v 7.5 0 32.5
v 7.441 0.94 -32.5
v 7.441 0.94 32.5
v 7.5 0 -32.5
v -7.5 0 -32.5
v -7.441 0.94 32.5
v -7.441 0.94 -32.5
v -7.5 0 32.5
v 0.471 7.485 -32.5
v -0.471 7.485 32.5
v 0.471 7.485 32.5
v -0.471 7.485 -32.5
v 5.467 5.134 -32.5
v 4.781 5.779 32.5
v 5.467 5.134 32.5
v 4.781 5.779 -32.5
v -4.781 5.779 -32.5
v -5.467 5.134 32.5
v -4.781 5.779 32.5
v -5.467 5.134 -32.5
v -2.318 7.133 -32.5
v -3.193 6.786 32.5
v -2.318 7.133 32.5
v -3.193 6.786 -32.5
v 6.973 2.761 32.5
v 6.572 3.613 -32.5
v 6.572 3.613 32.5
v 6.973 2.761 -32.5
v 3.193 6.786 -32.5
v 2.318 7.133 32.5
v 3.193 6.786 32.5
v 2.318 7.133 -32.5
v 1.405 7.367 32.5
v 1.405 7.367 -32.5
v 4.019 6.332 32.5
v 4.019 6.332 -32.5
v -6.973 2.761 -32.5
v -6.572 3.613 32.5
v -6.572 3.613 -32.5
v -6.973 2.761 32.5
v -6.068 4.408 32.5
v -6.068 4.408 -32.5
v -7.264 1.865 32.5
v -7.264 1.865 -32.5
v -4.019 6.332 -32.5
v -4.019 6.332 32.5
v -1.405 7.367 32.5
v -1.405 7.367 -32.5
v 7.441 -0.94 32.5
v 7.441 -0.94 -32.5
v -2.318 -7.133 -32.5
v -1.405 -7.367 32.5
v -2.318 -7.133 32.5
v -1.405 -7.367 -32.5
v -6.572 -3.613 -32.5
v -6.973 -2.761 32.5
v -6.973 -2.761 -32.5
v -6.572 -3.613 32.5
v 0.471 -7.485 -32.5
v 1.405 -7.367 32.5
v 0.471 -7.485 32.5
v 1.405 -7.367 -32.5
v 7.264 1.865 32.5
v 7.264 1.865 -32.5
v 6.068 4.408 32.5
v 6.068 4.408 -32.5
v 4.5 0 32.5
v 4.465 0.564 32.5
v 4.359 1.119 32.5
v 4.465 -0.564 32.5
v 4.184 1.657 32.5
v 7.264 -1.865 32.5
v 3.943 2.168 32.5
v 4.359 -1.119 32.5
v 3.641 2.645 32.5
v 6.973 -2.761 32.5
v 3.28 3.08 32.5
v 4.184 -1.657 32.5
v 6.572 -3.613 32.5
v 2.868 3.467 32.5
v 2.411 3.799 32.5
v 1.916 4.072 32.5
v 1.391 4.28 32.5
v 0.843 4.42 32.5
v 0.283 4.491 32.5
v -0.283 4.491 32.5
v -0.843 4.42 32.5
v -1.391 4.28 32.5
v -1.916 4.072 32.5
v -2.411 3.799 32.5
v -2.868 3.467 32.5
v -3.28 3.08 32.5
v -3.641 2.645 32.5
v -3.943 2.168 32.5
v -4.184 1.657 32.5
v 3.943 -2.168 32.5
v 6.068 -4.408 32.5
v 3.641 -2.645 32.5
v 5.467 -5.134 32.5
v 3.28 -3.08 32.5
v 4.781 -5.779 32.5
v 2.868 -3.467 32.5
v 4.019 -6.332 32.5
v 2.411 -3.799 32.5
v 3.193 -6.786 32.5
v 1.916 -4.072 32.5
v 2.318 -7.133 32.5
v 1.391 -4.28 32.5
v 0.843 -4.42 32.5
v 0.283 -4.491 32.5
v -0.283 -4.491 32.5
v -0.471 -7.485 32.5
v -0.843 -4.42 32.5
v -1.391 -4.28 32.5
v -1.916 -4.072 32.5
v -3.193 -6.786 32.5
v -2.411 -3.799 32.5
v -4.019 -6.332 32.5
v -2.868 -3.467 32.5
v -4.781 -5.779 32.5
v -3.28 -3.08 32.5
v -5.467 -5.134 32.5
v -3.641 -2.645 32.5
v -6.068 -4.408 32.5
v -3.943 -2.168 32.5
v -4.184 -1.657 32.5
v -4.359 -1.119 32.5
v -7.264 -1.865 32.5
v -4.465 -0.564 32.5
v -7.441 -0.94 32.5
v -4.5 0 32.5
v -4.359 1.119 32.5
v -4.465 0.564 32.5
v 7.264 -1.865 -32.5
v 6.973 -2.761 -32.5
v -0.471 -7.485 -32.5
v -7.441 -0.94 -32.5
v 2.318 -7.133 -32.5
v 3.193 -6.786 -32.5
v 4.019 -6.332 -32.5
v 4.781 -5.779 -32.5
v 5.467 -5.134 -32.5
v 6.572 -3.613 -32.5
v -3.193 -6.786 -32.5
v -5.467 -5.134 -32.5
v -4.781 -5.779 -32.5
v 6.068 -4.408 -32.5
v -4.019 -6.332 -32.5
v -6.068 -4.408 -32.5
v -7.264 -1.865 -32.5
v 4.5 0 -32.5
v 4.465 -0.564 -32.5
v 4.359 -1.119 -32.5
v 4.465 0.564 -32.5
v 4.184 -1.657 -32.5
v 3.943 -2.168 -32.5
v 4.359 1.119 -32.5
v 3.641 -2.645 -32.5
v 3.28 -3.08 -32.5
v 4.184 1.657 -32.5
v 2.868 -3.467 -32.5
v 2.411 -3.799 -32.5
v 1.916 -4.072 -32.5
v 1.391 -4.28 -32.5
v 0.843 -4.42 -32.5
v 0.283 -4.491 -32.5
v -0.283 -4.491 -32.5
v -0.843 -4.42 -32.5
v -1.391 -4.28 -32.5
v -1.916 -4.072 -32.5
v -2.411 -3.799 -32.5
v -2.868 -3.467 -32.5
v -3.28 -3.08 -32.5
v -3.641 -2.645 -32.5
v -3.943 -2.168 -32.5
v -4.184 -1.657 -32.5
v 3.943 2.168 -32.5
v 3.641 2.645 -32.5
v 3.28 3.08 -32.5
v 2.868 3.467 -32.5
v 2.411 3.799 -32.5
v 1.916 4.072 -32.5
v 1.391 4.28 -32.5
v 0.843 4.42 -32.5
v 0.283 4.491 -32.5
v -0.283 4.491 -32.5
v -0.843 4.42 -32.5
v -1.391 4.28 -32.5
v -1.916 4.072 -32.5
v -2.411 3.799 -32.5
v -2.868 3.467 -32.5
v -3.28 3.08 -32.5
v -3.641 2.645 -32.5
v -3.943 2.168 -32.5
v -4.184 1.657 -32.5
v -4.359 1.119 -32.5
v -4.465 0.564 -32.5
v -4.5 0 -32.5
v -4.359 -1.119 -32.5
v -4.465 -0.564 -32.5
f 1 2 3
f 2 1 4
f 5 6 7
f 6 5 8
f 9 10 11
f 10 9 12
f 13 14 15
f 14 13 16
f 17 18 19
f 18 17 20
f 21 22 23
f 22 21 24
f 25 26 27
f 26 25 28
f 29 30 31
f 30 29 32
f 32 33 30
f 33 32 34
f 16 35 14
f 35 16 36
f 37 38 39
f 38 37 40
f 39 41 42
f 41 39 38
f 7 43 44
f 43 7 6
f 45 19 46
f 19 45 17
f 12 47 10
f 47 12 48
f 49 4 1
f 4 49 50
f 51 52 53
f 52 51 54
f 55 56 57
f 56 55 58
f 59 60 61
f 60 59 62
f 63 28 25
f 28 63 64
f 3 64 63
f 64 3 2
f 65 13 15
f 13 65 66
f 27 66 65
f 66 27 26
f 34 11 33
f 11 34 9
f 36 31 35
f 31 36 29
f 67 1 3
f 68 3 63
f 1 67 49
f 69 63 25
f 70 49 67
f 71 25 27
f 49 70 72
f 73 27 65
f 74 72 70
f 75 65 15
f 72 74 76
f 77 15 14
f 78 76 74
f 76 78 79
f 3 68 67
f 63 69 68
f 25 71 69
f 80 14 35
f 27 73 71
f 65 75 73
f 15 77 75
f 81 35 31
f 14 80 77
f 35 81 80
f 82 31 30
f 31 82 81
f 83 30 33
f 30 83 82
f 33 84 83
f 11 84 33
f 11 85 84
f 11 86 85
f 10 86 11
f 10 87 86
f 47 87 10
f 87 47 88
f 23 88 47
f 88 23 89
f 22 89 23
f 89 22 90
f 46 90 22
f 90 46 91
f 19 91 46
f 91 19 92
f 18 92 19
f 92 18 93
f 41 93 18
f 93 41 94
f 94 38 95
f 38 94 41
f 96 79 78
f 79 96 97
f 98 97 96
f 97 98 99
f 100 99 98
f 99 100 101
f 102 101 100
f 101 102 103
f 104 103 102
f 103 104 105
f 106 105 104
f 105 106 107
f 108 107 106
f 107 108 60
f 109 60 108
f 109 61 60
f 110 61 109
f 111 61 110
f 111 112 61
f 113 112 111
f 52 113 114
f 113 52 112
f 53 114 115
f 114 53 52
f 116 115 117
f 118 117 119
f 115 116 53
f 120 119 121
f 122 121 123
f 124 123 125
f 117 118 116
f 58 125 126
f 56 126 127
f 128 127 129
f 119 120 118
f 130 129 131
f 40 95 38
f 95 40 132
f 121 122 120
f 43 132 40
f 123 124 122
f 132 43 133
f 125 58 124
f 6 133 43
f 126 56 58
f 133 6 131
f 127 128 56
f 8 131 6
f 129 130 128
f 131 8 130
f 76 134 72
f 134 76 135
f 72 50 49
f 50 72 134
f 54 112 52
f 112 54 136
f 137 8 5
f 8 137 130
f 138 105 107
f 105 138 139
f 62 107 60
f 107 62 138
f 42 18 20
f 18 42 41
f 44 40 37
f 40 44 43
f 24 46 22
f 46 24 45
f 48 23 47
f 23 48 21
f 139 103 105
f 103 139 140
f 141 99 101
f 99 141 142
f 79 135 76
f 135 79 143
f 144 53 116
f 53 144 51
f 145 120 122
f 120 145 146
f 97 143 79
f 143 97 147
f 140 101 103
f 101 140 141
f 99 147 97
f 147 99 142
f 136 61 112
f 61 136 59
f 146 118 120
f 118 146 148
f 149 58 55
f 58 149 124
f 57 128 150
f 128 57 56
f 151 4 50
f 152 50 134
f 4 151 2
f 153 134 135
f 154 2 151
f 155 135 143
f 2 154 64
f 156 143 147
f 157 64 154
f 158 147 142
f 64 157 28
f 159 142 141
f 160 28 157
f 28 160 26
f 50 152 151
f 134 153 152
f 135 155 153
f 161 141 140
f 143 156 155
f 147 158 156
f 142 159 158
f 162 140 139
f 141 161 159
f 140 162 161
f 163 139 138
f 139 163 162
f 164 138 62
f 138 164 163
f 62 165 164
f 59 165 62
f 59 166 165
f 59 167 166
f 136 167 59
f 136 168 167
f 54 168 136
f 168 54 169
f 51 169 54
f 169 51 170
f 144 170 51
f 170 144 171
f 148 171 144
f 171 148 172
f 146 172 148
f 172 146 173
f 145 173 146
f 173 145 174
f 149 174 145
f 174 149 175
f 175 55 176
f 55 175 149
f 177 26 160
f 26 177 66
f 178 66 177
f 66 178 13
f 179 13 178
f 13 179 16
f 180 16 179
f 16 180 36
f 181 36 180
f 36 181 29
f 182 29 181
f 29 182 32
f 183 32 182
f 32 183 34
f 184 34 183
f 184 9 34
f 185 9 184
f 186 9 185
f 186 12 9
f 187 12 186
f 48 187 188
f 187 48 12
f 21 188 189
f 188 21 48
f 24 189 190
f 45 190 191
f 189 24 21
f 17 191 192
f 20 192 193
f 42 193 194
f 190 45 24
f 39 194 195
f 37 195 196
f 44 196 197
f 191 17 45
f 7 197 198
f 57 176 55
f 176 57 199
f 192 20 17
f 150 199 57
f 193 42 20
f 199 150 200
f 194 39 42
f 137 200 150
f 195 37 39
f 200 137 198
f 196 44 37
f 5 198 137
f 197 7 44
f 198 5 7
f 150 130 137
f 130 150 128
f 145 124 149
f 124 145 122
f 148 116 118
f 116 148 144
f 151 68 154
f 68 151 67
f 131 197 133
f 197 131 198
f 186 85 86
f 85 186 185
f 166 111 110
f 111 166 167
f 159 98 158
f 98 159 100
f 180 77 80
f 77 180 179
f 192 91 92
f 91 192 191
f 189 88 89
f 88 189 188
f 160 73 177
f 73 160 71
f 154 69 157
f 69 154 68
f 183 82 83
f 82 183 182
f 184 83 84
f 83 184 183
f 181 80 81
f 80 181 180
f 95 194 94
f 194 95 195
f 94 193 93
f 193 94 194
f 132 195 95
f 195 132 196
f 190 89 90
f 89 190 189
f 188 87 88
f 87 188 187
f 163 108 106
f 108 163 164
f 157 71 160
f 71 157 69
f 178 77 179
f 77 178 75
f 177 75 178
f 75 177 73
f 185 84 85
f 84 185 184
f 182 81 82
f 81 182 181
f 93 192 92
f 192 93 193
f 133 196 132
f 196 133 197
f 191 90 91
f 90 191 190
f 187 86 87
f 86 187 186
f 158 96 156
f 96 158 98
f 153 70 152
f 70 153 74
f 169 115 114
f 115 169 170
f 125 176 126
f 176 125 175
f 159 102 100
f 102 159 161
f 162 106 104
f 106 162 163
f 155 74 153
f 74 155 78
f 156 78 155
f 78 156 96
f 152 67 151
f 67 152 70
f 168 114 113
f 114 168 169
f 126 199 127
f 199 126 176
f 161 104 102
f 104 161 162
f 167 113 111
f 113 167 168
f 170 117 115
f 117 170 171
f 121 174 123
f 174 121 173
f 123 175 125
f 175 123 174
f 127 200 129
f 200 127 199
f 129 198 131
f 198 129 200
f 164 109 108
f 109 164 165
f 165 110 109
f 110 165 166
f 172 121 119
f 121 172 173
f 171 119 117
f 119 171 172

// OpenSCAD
$fn = 50;


difference() {
	union() {
		translate(v = [0, 0, -32.5000000000]) {
			cylinder(h = 65, r = 7.5000000000);
		}
	}
	union() {
		translate(v = [0, 0, -100.0000000000]) {
			cylinder(h = 200, r = 4.5000000000);
		}
	}
}
